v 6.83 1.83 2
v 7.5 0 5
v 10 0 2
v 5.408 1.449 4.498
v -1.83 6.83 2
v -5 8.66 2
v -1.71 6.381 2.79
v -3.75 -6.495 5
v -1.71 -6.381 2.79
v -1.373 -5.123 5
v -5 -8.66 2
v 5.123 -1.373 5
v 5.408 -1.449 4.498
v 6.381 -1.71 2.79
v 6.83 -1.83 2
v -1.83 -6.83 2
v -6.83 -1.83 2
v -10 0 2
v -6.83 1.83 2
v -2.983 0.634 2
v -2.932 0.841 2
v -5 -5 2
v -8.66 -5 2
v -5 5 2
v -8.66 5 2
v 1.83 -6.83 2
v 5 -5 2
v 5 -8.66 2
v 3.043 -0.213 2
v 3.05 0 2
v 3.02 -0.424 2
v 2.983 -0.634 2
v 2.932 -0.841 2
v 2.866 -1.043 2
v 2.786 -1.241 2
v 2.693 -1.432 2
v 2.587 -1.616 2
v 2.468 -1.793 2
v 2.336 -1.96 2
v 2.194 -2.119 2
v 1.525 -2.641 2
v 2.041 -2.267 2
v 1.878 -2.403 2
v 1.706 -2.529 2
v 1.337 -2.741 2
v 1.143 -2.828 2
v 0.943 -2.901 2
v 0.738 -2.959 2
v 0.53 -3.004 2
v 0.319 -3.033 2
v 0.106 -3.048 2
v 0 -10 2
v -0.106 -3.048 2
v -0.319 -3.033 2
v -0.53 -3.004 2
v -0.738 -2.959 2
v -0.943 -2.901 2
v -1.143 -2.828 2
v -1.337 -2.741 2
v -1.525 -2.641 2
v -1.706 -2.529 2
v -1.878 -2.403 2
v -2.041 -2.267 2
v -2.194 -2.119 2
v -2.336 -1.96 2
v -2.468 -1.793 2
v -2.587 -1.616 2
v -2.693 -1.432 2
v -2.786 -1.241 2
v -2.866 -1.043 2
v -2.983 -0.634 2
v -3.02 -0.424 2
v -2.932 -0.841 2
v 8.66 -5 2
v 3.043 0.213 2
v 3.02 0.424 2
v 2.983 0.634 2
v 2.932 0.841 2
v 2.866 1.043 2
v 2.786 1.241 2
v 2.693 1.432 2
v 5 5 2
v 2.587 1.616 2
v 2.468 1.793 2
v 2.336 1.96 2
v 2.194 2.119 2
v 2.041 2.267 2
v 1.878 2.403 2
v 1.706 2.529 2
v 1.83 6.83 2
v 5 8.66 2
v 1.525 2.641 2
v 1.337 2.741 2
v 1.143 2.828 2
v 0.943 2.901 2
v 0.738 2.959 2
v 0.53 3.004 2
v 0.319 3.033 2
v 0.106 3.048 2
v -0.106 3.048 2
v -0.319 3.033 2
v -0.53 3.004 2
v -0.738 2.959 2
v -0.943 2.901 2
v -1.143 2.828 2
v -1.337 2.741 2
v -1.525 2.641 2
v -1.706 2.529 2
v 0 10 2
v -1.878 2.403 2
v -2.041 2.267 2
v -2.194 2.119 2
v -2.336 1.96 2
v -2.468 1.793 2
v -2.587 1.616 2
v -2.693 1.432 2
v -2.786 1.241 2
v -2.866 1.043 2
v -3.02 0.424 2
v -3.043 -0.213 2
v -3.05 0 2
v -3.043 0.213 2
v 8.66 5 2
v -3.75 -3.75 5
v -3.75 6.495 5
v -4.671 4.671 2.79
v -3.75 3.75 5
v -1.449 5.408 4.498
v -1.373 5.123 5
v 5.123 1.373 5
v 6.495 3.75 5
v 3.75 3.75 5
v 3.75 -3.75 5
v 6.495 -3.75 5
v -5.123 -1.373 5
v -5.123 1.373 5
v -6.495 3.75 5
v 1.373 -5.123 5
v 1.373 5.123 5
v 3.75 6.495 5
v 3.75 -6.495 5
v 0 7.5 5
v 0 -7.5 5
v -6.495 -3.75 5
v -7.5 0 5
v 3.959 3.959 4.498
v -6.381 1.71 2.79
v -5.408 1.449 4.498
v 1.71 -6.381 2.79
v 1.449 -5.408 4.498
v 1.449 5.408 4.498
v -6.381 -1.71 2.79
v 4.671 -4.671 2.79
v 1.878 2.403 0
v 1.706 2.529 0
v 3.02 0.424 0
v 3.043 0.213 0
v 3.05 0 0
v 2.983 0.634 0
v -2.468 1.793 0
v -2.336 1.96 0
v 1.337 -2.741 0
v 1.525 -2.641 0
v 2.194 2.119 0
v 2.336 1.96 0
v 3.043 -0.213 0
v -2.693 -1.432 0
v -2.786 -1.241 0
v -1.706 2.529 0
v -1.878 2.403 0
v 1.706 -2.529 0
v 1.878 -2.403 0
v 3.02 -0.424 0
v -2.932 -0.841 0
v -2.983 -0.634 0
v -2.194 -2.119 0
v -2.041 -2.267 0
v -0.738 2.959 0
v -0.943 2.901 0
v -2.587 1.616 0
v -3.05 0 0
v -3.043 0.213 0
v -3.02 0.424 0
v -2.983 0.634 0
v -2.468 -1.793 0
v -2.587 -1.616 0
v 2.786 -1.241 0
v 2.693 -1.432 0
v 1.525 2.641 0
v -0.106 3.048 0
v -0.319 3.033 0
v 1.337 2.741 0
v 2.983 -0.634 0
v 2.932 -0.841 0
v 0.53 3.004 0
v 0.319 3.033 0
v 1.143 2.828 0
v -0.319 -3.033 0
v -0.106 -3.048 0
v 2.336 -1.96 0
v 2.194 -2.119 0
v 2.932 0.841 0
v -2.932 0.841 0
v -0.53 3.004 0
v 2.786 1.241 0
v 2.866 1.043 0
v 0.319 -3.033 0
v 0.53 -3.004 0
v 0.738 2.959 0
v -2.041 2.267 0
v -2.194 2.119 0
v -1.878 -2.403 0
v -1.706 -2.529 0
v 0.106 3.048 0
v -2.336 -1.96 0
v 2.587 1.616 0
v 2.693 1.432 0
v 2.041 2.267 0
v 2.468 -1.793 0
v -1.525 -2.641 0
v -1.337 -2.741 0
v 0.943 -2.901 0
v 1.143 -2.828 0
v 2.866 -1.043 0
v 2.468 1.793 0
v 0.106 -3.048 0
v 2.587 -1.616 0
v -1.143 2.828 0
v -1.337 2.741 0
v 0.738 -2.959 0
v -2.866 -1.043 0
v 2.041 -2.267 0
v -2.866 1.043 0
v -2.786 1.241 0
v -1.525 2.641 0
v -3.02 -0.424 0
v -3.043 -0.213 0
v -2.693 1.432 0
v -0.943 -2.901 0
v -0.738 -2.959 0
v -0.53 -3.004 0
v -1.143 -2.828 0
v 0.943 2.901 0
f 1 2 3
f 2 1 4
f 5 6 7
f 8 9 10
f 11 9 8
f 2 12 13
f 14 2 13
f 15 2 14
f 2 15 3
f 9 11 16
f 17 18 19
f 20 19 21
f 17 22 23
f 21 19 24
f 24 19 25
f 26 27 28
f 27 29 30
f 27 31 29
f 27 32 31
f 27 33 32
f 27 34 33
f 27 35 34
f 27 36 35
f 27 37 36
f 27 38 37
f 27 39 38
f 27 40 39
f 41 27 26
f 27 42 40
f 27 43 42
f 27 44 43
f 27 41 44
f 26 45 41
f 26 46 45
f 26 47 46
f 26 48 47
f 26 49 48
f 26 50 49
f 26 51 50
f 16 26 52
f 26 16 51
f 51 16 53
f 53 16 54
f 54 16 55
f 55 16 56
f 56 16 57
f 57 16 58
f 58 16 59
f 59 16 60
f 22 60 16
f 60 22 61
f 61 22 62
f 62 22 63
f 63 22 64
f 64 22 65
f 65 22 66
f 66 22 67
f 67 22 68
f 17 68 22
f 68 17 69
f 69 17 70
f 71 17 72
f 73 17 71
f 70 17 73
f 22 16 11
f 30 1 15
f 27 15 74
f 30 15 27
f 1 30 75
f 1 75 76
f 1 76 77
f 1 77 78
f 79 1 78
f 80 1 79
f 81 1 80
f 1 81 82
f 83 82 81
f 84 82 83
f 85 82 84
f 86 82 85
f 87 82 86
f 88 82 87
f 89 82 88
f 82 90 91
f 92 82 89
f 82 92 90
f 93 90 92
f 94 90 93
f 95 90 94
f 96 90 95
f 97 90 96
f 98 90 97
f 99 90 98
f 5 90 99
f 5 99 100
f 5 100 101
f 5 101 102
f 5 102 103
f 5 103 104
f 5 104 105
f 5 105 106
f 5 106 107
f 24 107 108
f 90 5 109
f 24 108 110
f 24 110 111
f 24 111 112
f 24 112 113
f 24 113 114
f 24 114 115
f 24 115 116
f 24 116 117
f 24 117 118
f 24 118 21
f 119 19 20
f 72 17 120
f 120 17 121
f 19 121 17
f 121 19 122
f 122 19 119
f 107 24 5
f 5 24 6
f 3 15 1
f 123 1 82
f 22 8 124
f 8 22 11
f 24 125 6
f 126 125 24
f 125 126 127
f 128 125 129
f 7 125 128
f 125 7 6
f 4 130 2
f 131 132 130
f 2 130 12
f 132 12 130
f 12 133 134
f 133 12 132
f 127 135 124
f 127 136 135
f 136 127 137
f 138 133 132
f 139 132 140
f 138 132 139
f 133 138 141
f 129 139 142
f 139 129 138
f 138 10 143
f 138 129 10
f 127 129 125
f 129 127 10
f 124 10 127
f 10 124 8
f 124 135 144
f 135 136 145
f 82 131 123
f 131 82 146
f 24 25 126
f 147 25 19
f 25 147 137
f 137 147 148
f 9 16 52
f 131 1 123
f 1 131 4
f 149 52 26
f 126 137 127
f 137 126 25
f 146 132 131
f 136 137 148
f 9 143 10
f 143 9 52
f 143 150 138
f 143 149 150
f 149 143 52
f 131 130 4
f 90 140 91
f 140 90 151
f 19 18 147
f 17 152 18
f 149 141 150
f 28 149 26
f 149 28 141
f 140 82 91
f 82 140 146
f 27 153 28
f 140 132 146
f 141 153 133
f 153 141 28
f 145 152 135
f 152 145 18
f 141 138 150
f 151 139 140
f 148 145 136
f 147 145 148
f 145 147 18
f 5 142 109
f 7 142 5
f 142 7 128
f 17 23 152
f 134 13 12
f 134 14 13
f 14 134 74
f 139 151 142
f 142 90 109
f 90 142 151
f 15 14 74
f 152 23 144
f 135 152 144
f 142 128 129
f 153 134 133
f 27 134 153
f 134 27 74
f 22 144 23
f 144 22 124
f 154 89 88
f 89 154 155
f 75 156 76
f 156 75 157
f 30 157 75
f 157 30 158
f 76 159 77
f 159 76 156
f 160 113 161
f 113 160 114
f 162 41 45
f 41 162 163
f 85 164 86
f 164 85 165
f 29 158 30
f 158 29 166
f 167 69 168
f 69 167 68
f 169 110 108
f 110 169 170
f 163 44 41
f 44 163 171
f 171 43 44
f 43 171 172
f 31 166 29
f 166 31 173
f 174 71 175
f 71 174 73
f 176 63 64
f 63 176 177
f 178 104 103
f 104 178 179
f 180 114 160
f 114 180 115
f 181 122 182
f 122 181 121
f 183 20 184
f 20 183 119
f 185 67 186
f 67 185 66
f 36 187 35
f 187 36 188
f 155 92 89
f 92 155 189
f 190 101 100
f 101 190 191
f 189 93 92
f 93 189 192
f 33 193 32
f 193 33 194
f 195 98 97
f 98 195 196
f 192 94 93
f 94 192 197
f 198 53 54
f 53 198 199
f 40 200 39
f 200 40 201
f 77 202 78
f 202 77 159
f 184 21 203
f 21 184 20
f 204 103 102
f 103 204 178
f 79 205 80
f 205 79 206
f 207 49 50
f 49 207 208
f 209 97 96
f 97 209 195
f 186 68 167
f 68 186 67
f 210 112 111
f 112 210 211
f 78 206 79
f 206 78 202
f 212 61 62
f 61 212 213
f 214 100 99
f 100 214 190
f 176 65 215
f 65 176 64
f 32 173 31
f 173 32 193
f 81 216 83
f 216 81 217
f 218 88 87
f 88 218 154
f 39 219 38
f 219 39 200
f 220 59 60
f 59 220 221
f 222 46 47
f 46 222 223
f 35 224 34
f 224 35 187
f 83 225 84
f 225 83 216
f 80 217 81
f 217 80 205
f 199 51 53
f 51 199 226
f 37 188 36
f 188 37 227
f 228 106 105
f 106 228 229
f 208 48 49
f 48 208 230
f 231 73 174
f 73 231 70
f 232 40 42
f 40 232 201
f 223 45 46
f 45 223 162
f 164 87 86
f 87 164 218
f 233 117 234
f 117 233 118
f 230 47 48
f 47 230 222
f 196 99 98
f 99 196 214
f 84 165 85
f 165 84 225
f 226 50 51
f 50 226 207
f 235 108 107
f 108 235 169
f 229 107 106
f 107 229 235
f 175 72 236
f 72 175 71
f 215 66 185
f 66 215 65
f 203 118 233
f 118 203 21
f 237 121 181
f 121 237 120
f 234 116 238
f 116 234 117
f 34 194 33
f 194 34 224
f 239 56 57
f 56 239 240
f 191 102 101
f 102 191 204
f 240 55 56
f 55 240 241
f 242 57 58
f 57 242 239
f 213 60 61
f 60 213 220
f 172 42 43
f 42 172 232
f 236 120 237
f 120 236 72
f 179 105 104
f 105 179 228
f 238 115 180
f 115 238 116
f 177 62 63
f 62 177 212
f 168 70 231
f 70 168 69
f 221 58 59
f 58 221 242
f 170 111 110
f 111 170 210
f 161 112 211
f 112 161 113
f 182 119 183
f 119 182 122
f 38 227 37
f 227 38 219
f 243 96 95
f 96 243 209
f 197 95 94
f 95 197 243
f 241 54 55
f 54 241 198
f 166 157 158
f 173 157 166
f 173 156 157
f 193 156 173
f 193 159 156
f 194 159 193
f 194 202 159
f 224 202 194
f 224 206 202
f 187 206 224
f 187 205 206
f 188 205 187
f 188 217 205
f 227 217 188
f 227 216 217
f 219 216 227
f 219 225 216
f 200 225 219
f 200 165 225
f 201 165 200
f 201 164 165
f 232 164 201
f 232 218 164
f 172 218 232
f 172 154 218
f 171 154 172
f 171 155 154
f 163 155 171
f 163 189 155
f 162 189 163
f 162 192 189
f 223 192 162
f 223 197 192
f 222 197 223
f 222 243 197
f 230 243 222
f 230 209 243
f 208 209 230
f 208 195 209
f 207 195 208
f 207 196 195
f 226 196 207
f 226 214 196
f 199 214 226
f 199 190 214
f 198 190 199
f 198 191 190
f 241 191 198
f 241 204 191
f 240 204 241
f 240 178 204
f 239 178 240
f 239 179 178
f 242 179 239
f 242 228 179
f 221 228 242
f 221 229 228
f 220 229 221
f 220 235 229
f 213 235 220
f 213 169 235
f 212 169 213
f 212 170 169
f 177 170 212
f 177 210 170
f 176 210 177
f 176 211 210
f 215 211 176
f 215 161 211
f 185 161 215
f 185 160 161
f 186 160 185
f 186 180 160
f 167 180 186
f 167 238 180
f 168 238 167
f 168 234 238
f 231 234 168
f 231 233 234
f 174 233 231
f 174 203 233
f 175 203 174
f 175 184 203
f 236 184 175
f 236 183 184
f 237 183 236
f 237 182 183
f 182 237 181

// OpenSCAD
$fn = 90;

cylinder(d=6.1, h=2);

translate([0, 0, 2]){
	dAngle = 30;
	for(angle = [0:dAngle:120-dAngle]){
		rotate([0, 0, angle])
			cylinder(d1=20, d2=15, h=3, $fn=3);
	}
}
